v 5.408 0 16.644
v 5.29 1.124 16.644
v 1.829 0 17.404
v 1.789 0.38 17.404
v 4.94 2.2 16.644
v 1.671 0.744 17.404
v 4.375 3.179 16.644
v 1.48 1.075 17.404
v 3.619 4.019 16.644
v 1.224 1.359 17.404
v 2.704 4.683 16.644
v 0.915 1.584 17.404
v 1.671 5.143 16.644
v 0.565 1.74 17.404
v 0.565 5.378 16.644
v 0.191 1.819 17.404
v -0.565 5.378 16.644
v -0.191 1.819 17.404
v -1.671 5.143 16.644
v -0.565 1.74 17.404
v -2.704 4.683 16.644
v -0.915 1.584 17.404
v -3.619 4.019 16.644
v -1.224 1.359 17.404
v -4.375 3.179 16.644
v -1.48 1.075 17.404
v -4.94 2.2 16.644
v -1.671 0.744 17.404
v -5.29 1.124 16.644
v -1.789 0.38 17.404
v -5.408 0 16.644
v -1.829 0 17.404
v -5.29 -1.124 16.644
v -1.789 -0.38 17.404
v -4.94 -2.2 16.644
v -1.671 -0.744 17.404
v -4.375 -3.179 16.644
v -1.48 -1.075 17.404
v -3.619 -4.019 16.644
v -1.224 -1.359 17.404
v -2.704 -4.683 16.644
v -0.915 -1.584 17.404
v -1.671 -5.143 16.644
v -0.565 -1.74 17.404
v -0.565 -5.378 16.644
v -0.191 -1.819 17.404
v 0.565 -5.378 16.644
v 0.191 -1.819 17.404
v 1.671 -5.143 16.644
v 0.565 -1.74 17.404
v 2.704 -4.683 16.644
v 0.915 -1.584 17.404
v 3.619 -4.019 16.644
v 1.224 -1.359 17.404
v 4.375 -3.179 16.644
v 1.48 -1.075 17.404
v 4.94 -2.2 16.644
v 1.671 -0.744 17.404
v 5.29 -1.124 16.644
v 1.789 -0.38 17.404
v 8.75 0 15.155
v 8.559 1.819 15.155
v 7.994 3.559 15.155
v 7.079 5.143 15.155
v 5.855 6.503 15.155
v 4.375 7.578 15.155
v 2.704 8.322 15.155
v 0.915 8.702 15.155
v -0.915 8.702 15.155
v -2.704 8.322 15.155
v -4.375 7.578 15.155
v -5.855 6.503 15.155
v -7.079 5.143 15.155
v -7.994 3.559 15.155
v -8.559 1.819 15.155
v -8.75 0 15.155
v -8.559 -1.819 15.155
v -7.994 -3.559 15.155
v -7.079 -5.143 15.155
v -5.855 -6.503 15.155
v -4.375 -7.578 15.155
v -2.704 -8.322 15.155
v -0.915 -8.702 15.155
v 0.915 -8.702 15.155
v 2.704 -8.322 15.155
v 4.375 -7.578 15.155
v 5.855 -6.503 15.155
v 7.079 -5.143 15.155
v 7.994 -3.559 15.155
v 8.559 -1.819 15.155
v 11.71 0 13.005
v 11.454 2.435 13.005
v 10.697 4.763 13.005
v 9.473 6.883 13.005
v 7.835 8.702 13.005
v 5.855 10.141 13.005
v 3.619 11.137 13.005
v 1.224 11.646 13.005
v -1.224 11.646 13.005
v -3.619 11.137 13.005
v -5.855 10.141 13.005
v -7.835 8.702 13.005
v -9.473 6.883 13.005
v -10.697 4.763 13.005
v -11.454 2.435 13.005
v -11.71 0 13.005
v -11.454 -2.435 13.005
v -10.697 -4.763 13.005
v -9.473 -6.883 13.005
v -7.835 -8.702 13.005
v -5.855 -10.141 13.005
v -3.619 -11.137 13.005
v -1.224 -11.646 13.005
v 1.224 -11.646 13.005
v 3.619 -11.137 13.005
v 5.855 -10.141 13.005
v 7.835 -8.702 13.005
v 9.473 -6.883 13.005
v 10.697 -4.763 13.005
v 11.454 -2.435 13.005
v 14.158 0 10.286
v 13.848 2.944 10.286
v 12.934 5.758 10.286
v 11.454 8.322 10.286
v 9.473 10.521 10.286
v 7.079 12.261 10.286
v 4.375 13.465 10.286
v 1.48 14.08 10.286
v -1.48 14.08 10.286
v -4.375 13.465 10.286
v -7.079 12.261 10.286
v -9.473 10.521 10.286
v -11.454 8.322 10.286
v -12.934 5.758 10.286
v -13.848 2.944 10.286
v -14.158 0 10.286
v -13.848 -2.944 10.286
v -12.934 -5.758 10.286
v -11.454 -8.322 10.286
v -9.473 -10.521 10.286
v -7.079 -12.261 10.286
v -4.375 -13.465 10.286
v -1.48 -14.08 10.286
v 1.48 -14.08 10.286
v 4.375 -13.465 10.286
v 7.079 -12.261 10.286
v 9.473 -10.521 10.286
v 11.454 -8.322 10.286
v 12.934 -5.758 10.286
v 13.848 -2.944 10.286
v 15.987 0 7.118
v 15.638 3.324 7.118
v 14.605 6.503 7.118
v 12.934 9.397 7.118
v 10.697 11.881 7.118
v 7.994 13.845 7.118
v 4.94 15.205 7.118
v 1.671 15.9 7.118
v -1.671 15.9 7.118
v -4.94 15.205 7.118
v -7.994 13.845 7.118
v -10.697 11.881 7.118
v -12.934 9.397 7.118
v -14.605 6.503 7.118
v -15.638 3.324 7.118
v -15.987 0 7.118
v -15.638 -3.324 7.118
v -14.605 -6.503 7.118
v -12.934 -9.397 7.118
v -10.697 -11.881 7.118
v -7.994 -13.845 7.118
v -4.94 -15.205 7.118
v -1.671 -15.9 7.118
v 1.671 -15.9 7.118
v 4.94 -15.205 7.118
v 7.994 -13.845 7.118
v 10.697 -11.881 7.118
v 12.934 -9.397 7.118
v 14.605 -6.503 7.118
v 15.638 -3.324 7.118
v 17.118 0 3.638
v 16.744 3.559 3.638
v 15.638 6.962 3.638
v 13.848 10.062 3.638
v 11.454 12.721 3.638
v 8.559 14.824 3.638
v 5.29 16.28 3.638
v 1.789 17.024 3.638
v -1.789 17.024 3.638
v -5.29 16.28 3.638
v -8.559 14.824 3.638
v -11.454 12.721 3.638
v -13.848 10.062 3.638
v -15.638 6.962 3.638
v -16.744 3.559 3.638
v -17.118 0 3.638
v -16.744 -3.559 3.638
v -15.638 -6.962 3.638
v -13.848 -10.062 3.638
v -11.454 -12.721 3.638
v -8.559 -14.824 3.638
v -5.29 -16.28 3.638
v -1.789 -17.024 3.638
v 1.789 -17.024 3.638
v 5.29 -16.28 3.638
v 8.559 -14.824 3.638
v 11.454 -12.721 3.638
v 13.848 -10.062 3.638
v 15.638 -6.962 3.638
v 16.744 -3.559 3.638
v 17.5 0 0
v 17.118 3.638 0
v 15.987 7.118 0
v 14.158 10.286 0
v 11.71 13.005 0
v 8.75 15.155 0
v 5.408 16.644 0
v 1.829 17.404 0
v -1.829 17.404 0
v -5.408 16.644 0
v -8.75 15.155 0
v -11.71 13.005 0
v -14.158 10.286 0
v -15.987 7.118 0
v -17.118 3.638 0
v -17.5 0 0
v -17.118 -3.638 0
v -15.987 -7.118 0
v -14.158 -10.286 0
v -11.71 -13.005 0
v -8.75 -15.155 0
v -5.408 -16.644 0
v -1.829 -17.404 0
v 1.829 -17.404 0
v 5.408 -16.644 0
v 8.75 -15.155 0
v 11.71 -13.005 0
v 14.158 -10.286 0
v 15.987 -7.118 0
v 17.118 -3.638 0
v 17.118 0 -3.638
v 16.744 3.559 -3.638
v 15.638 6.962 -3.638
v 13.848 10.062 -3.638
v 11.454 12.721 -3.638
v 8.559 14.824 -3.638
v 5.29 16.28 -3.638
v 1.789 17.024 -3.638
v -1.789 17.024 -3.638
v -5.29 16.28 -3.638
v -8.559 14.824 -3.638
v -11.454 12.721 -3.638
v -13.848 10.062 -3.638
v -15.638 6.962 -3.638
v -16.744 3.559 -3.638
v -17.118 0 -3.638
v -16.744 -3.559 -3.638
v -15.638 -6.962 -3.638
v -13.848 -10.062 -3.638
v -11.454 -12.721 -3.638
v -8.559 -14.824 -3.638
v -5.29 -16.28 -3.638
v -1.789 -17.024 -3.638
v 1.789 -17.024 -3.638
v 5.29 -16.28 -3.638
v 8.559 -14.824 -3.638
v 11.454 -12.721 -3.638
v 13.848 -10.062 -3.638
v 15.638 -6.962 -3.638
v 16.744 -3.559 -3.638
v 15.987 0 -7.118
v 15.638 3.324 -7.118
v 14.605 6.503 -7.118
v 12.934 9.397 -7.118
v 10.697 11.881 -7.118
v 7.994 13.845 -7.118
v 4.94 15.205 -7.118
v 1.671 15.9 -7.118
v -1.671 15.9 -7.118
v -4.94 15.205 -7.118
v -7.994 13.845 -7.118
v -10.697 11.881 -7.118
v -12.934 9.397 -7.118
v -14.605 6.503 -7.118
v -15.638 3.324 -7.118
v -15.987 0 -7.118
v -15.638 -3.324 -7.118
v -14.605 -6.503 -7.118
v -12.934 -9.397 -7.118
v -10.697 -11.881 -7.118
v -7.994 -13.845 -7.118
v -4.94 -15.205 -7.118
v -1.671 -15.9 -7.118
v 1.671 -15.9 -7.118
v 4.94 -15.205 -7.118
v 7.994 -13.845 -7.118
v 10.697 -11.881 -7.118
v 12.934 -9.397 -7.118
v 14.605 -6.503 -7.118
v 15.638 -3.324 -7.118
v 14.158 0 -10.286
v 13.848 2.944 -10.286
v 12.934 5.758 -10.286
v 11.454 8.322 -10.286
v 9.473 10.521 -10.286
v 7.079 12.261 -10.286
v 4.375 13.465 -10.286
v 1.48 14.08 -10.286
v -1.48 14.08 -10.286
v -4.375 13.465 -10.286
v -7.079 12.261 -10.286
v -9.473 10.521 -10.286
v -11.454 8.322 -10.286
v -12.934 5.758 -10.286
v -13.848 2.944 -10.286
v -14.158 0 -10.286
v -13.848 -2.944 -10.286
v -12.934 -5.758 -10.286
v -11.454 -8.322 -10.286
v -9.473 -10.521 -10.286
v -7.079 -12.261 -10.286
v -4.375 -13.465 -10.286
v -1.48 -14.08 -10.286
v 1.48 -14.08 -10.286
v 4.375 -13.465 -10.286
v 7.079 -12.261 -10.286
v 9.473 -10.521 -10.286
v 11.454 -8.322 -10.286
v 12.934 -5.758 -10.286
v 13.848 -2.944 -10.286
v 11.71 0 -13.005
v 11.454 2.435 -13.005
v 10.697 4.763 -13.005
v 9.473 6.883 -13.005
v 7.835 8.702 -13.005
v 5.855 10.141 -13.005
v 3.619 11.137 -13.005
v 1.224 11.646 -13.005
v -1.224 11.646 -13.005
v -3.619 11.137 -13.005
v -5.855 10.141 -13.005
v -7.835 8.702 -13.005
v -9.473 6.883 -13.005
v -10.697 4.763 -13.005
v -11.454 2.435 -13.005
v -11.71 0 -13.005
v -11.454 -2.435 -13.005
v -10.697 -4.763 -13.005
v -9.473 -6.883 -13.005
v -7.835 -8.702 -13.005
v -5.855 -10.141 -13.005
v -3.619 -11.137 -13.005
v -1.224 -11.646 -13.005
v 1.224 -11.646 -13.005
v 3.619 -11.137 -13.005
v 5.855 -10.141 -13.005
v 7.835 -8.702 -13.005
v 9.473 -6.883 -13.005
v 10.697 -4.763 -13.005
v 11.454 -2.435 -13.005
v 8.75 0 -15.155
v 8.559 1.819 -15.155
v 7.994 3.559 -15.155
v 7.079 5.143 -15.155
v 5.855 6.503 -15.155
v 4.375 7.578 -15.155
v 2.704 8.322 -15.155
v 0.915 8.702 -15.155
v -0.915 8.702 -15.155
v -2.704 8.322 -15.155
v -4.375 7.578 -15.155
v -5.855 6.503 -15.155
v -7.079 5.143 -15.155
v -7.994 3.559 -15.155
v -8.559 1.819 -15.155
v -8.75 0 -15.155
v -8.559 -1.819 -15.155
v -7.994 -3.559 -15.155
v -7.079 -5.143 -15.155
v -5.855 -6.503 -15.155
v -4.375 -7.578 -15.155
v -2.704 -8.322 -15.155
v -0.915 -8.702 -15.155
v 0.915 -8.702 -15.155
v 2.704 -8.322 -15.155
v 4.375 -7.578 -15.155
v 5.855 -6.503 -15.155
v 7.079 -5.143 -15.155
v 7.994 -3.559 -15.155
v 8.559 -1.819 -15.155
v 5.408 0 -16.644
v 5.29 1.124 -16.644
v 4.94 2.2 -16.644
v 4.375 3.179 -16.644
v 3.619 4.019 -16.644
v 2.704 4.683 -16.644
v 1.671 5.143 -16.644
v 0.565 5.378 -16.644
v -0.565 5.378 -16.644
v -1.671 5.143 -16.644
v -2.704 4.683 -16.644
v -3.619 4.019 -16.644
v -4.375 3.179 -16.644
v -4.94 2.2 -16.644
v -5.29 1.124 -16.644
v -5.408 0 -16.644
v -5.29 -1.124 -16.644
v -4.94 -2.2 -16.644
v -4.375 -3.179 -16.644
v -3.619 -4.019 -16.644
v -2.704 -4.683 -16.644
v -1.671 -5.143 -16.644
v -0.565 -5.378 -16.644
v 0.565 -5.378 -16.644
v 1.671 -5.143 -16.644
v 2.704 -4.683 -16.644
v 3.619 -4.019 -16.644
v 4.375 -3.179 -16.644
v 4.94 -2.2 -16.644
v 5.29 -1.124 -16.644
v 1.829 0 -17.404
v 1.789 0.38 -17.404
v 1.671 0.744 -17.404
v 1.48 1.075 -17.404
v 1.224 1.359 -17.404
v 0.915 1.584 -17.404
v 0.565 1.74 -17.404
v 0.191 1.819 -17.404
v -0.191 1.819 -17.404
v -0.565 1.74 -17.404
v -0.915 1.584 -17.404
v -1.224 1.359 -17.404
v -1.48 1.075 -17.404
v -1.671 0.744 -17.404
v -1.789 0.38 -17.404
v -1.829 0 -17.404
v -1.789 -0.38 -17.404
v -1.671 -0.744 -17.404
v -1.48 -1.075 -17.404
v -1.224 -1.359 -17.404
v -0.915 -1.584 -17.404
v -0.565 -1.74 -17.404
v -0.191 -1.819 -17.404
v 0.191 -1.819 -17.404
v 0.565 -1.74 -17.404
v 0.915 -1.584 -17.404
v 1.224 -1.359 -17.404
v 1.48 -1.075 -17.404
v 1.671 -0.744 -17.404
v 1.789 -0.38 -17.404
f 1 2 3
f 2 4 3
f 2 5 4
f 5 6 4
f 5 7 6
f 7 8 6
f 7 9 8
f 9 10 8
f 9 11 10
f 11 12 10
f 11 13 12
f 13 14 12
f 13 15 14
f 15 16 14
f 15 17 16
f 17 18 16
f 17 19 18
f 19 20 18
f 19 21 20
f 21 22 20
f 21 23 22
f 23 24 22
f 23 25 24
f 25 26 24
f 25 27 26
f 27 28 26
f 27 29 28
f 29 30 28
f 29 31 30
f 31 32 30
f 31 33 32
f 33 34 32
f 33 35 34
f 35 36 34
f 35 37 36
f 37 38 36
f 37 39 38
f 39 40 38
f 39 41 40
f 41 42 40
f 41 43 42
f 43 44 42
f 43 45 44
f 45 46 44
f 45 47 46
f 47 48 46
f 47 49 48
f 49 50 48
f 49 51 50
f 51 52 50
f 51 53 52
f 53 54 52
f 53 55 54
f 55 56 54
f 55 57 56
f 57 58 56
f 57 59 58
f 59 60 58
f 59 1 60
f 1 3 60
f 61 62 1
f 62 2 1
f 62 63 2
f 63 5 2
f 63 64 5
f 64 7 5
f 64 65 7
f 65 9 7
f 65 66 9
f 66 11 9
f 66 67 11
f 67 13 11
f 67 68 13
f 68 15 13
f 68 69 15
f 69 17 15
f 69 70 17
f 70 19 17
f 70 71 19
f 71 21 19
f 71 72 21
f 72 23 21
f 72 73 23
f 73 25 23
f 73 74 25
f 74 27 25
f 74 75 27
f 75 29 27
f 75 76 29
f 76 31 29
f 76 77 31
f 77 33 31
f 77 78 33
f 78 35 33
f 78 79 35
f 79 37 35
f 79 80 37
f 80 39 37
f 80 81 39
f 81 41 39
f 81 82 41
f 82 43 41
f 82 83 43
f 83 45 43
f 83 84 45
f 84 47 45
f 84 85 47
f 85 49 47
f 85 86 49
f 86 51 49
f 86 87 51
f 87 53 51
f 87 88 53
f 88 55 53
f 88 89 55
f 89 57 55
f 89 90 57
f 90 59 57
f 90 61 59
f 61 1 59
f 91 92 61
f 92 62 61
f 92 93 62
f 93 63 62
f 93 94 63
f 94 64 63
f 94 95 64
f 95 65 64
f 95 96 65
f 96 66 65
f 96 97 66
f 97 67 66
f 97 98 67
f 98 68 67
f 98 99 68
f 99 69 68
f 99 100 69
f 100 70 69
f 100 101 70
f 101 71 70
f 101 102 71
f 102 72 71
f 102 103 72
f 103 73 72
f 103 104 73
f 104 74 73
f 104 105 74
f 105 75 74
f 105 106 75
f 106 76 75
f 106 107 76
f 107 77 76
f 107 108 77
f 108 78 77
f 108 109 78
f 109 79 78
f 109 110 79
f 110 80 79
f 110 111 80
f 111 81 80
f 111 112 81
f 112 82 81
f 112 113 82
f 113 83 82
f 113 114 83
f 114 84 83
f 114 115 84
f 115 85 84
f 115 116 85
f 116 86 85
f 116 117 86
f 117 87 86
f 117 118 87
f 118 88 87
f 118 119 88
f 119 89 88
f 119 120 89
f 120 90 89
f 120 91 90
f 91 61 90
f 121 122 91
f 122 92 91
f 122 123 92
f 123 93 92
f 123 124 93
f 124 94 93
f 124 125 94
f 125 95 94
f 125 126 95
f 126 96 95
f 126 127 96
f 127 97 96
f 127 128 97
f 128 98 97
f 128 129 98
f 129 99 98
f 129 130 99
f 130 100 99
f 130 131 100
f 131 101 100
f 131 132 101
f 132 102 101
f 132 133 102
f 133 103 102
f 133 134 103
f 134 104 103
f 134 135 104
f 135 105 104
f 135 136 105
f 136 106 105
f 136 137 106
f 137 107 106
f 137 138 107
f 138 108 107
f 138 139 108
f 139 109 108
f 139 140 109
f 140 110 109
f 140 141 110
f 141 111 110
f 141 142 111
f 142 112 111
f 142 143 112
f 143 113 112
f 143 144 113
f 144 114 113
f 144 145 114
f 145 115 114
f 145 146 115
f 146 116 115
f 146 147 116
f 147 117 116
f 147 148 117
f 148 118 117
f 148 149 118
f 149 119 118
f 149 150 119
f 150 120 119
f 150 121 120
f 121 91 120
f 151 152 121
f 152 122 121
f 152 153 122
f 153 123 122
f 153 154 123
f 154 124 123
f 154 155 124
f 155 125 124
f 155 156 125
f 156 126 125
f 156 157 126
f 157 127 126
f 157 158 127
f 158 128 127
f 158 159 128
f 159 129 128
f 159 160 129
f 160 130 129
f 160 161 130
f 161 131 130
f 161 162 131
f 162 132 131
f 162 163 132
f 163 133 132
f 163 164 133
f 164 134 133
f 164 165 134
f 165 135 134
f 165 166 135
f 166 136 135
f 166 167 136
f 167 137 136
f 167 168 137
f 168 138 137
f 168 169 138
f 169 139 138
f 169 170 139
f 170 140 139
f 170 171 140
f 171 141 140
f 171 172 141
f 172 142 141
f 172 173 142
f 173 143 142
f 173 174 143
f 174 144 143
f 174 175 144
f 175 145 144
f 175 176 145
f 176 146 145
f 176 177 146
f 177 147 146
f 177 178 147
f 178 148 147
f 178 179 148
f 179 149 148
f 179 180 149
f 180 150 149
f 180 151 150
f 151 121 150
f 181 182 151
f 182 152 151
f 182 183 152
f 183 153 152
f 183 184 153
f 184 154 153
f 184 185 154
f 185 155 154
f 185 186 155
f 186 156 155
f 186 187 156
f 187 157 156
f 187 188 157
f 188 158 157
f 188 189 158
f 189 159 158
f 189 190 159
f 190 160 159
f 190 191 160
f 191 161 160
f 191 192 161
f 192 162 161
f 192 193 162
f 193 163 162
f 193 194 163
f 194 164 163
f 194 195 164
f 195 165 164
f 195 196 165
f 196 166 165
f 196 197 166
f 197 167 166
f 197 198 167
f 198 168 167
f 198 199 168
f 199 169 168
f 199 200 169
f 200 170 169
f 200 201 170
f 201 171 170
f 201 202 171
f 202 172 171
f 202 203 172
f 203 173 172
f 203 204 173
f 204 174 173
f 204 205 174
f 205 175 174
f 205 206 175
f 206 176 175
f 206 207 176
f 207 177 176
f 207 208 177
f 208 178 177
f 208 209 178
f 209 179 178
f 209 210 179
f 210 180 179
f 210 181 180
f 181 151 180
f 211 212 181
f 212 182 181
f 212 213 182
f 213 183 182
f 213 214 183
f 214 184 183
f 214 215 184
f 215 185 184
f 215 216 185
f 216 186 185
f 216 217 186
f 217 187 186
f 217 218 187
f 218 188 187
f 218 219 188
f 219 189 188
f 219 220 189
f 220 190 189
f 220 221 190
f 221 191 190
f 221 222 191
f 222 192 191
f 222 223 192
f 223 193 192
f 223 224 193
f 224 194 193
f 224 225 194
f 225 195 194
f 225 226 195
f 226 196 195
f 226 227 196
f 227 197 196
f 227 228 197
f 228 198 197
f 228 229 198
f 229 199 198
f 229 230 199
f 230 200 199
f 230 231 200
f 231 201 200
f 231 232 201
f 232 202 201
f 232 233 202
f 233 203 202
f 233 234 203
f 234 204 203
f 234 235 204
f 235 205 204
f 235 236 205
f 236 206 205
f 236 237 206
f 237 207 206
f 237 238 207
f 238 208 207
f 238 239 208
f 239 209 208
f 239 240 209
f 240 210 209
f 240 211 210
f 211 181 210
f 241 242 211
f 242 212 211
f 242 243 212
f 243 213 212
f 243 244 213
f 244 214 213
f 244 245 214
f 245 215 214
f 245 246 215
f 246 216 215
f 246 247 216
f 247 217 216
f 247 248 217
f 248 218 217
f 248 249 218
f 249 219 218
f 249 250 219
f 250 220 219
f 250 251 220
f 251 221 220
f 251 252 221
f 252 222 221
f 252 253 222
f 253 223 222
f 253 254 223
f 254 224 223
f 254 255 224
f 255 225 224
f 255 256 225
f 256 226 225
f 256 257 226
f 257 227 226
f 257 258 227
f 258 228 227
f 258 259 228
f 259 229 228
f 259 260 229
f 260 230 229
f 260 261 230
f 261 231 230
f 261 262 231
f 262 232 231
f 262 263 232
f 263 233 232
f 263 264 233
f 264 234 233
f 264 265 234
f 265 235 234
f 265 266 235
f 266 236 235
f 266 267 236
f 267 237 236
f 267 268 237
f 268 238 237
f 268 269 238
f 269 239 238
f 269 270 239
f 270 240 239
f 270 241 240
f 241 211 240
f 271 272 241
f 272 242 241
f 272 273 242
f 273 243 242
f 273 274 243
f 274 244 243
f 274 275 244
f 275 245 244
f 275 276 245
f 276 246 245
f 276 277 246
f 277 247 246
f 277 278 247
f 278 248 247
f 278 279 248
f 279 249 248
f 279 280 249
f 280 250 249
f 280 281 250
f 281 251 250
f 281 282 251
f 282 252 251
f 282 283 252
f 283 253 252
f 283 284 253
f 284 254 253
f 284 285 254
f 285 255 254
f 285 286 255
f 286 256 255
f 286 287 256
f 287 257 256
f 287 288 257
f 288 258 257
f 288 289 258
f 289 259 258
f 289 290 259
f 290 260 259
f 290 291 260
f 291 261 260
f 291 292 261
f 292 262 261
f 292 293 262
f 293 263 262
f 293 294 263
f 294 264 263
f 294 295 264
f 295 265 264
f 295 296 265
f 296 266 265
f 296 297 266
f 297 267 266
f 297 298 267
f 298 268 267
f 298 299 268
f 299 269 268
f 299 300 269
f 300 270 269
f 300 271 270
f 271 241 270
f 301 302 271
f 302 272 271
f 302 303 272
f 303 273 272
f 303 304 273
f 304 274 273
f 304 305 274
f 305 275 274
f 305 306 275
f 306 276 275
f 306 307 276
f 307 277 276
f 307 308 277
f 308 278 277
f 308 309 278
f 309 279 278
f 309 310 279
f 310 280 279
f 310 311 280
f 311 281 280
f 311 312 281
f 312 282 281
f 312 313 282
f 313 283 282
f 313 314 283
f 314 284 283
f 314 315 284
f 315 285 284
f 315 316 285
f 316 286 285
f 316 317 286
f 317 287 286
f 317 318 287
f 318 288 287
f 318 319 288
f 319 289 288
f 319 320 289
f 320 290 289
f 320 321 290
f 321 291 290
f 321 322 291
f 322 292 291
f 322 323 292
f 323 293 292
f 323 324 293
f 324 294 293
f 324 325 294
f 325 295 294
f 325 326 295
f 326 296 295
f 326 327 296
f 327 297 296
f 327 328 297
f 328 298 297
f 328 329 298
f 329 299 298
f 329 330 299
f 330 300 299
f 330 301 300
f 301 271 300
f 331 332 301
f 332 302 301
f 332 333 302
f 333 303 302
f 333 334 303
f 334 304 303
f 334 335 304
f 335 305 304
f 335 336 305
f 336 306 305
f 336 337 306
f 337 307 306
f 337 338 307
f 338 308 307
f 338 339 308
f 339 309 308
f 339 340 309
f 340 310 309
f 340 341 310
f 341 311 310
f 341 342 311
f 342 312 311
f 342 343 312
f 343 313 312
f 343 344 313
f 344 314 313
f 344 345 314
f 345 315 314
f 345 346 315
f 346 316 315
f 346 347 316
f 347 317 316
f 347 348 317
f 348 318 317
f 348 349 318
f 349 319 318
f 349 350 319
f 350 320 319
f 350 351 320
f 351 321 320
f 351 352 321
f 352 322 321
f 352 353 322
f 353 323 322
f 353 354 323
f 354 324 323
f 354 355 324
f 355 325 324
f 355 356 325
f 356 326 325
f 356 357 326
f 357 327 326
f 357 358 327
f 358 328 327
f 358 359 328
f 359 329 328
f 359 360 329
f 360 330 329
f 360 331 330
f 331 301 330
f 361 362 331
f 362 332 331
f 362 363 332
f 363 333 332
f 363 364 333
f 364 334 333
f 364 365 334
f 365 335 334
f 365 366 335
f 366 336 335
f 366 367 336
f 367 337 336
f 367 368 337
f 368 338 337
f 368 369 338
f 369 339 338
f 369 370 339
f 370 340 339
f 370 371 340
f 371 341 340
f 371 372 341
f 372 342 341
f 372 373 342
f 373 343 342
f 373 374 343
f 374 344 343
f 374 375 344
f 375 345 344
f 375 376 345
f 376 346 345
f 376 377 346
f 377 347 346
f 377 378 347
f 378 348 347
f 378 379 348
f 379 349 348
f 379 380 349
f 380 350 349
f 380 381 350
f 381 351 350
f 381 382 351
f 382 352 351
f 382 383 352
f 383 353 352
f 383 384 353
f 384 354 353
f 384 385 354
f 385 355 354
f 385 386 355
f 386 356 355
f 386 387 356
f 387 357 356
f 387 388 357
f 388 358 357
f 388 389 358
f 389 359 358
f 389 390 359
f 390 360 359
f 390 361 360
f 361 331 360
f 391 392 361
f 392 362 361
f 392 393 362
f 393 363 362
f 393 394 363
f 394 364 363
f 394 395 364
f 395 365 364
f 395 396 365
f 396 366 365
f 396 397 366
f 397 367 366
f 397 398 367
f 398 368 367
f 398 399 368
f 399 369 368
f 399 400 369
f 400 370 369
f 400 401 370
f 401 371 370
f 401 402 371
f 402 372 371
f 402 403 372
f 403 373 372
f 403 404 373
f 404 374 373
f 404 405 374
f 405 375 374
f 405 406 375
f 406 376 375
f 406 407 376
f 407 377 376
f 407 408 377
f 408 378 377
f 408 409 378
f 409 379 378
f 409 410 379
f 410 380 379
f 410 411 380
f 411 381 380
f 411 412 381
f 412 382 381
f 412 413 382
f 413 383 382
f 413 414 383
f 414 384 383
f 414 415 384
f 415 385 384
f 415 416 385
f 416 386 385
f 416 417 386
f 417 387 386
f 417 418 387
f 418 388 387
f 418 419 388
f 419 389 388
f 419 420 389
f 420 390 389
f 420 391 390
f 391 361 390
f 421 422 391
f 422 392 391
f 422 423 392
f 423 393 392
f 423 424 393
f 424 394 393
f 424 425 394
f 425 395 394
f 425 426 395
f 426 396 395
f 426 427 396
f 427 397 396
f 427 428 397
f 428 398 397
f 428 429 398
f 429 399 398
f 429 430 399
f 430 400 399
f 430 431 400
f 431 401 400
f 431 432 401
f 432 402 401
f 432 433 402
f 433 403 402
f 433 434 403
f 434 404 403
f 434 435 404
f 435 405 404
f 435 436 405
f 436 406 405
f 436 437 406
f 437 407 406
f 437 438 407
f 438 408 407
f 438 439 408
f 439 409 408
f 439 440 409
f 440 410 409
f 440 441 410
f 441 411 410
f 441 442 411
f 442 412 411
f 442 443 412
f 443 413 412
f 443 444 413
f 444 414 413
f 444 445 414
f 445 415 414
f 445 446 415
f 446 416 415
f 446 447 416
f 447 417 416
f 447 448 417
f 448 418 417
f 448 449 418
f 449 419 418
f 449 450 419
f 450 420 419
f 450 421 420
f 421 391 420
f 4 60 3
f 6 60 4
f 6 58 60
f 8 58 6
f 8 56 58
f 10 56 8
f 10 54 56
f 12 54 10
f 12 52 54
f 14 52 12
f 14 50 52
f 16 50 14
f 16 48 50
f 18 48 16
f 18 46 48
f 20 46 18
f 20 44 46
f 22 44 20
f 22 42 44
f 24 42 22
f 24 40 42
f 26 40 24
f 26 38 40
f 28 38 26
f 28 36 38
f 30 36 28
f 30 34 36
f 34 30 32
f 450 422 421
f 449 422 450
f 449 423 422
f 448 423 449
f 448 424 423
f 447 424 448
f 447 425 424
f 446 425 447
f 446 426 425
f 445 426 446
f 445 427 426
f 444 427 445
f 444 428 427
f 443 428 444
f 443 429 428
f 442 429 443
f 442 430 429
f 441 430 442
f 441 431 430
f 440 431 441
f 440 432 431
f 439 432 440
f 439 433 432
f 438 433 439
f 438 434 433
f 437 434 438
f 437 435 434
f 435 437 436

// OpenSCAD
/*
 * Simple ball (C) by Tobias Wilken
 */

radius = 17.5;

sphere(r=radius);
